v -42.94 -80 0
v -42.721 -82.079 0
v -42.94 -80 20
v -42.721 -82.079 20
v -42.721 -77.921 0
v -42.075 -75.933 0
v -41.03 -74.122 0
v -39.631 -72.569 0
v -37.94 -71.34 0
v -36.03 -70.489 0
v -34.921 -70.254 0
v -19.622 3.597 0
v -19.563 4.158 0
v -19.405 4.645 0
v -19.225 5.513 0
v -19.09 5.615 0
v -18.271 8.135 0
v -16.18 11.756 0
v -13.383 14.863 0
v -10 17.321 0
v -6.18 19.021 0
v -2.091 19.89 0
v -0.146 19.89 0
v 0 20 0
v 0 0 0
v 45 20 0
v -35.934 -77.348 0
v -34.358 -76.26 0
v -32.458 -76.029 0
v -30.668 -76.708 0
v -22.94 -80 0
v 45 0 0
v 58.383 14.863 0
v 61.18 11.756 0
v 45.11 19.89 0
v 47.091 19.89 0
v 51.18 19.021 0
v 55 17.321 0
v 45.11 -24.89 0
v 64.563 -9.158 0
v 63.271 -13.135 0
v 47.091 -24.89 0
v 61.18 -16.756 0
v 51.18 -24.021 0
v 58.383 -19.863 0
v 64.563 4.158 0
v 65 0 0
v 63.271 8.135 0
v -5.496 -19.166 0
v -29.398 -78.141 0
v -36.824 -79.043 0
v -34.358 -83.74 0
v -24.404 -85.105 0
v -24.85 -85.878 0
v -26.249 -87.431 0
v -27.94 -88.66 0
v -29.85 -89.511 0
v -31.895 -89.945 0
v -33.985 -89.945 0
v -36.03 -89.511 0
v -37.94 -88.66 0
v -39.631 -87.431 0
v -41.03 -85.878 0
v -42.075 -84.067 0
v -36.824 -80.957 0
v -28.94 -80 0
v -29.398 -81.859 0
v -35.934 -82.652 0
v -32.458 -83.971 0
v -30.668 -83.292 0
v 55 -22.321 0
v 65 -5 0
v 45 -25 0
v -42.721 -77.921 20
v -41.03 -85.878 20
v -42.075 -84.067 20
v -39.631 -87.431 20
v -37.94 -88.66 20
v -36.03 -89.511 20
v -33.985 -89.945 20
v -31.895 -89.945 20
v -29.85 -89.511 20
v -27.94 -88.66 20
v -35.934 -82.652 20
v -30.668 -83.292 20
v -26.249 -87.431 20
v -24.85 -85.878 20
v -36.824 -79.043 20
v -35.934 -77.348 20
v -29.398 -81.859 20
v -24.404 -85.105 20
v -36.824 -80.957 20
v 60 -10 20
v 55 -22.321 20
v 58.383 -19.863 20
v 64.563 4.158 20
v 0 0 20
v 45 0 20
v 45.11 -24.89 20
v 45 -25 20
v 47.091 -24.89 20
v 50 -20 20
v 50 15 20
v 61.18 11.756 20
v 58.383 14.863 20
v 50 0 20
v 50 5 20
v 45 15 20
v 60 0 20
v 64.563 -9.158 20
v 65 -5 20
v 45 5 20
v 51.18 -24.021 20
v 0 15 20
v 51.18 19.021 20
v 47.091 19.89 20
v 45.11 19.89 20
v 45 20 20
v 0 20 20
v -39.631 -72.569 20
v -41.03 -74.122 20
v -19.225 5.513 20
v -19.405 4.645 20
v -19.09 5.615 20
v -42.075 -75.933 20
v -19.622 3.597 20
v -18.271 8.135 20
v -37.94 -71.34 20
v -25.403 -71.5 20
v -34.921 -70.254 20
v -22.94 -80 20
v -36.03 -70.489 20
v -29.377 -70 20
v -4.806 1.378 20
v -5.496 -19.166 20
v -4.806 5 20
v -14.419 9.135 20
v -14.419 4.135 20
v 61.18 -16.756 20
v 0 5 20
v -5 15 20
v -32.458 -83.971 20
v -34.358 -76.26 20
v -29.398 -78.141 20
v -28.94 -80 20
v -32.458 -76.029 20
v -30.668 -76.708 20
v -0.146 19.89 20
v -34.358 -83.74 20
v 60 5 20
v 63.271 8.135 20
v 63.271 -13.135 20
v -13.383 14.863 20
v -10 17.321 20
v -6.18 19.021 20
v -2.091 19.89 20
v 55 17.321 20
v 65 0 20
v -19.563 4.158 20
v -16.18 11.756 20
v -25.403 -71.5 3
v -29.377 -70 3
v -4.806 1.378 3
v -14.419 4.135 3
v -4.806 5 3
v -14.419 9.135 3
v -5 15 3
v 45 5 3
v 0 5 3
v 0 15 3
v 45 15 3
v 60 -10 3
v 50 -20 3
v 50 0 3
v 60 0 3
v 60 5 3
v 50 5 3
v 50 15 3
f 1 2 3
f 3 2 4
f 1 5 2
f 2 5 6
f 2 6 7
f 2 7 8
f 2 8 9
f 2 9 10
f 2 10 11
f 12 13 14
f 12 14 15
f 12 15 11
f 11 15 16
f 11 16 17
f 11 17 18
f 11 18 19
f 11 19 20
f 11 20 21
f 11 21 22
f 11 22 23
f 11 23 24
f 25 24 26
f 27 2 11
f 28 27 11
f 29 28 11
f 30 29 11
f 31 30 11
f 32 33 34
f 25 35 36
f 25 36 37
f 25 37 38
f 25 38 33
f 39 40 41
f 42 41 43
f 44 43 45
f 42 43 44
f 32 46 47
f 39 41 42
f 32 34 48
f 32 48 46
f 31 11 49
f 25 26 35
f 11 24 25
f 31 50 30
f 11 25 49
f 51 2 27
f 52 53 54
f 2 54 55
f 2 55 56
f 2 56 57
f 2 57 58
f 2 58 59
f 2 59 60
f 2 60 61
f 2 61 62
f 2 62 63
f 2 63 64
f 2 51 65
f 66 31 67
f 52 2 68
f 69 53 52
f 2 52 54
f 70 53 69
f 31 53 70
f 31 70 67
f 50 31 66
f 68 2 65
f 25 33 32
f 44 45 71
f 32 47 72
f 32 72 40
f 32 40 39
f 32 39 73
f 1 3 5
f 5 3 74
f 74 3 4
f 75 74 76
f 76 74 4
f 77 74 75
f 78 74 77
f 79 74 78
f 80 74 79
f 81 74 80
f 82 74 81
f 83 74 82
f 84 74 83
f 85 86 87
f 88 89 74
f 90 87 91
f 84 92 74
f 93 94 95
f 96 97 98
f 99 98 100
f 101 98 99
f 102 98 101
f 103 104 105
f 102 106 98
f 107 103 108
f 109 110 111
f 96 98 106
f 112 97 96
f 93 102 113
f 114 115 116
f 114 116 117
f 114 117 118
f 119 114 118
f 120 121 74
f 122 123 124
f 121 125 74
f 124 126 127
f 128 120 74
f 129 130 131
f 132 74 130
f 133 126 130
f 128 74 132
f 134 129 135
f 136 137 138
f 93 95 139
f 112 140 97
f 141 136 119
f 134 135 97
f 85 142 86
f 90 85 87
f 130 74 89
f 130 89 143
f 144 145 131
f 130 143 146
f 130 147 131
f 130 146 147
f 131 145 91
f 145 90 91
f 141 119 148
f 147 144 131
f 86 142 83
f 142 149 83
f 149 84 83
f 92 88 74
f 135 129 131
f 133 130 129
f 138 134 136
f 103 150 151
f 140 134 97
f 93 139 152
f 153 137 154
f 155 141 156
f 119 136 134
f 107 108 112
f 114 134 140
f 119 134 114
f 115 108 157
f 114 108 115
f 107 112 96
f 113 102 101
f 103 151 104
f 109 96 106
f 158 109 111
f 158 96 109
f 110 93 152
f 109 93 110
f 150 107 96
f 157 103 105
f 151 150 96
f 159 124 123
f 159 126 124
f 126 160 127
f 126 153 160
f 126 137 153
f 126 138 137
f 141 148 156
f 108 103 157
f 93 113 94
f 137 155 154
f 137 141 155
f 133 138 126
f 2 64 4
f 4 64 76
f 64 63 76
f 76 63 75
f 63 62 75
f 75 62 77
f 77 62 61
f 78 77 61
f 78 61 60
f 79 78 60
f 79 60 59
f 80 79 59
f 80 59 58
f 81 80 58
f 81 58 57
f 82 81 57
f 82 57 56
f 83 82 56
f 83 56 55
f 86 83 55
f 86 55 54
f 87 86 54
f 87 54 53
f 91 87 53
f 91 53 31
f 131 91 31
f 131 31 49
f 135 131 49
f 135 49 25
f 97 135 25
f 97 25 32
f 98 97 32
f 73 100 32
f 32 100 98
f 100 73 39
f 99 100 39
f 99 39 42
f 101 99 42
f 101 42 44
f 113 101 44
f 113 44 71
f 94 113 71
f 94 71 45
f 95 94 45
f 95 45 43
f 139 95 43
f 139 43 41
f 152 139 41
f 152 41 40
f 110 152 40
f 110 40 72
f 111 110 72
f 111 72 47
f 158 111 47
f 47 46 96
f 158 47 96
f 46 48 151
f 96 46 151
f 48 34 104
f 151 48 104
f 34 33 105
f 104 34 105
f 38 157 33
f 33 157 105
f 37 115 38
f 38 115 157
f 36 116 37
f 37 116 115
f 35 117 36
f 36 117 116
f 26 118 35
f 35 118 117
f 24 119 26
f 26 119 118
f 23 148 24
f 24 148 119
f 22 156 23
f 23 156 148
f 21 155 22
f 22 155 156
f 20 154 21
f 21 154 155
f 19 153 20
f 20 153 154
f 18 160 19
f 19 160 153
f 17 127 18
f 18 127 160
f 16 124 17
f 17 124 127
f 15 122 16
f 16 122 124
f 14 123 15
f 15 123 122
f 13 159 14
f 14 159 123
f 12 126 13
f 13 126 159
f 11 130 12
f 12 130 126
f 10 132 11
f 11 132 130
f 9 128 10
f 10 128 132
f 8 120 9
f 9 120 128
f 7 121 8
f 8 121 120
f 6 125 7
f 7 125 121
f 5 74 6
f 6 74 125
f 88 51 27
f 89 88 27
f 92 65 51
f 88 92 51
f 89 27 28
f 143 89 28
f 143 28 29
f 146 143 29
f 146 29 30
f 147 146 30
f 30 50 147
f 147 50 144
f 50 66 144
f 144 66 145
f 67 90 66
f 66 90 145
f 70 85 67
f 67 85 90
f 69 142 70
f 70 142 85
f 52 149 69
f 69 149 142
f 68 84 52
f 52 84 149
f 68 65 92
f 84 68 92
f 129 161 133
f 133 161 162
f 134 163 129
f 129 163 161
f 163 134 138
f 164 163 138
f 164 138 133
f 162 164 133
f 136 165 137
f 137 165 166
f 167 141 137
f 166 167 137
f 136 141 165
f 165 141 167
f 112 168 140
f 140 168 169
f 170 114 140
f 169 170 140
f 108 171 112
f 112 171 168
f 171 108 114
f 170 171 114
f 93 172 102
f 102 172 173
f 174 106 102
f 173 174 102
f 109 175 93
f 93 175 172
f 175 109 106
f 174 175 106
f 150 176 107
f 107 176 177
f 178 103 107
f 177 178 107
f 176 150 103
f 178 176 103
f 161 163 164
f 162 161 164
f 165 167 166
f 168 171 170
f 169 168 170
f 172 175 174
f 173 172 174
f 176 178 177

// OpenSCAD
//linear_extrude(height=20, twist=0)
//{
//  difference()
//  {
//    polygon([[0,0],[0,10],[15,15],[10,0]]);
//    circle(r=5);
//  }
//}


w = 45;      // Width top of handrail
d = 25;      // Depth of heandrail.
h = 80;      // Height of main hanger
a = 16;      // Angle between handrail top and side
t1 = 20;     // Thickness at top of hanger
t2 = 14;     // Thickness at bottom of hanger
t3 = 5;      // Thickness of outer frame
t4 = 3;      // Thickness of frame web
r1 = 10;     // Outer radius of rope eye
r2 = 4;      // Radius of rope eye hole

p1  = [0,0];
p2  = [w,0];
p3  = [w,-d];
p4  = [w+t1,-d+t1];
p5  = [w+t1,0];
p6  = [w,t1];
p7  = [0,t1];
p8  = [-t1*cos(a),t1*sin(a)];
p9  = [-h*tan(a)-t2,-h];
p10 = [-h*tan(a),-h];
p11 = p10 + [-(r1+r1)*tan(a),-(r1+r1)];
p12 = p11 + [r1,0];

p21 = p1 + [-t3*cos(a),t3*sin(a)];
p22 = p8 + [t3*cos(a),-t3*sin(a)];
p23 = p9 + [t3*cos(a)+(t3+0.5*r1)*sin(a),t3+0.5*r1];
p24 = p10 + [-t3*cos(a)+(t3+0.35*r1)*sin(a),t3+0.35*r1];

p31 = p1 + [-t3*cos(a),t3];
p32 = p8 + [t3*cos(a),t3*(1-sin(a))];
p33 = p7 + [-t3,-t3];

p41 = p1 + [0,t3];
p42 = p2 + [0,t3];
p43 = p6 + [0,-t3];
p44 = p7 + [0,-t3];

p51 = p2 + [t3,t3];
p52 = p5 + [-t3,t3];
p53 = p6 + [t3,-t3];

p61 = p2 + [t3,0];
p62 = p3 + [t3,t3];
p63 = p4 + [-t3,-t3];
p64 = p5 + [-t3,0];

module HangerProfile()
{
  difference()
  {
  union()
    {
      polygon([p1,p2,p3,p4,p5,p6,p7,p8,p9,p10]);
      circle(r=t1);
      translate(p2) circle(r=t1);
      translate([w,-d+t1]) circle(r=t1);
      translate(p10-[2.5*r2,0]) circle(r=r1);
    }
    polygon([p1,p2,p3,p12,p11]);
    translate(p10-[2.5*r2,0]) circle(r=r2);
  }
}

module WebProfile()
{
  polygon([p21,p22,p23,p24]);
  polygon([p31,p32,p33]);
  polygon([p41,p42,p43,p44]);
  polygon([p51,p52,p53]);
  polygon([p61,p62,p63,p64]);
}

  //polygon([[0,0],[w,0],[w,-d],
  //         [w+t1,-d+t1],[w+t1,0],[w,t1],
  //         [0,t1],[-t1*cos(a),t1*sin(a)],
  //         [-h*tan(a)-t2,-h],[-h*tan(a),-h]
  //         ], 
  //        convexity=4);


//difference()
//{
//  HangerProfile();
//  WebProfile();
//}


difference()
{
  linear_extrude(height=20, twist=0)
  {
    HangerProfile();
  }
  translate([0,0,t4])
    linear_extrude(height=20, twist=0)
      WebProfile();
}
